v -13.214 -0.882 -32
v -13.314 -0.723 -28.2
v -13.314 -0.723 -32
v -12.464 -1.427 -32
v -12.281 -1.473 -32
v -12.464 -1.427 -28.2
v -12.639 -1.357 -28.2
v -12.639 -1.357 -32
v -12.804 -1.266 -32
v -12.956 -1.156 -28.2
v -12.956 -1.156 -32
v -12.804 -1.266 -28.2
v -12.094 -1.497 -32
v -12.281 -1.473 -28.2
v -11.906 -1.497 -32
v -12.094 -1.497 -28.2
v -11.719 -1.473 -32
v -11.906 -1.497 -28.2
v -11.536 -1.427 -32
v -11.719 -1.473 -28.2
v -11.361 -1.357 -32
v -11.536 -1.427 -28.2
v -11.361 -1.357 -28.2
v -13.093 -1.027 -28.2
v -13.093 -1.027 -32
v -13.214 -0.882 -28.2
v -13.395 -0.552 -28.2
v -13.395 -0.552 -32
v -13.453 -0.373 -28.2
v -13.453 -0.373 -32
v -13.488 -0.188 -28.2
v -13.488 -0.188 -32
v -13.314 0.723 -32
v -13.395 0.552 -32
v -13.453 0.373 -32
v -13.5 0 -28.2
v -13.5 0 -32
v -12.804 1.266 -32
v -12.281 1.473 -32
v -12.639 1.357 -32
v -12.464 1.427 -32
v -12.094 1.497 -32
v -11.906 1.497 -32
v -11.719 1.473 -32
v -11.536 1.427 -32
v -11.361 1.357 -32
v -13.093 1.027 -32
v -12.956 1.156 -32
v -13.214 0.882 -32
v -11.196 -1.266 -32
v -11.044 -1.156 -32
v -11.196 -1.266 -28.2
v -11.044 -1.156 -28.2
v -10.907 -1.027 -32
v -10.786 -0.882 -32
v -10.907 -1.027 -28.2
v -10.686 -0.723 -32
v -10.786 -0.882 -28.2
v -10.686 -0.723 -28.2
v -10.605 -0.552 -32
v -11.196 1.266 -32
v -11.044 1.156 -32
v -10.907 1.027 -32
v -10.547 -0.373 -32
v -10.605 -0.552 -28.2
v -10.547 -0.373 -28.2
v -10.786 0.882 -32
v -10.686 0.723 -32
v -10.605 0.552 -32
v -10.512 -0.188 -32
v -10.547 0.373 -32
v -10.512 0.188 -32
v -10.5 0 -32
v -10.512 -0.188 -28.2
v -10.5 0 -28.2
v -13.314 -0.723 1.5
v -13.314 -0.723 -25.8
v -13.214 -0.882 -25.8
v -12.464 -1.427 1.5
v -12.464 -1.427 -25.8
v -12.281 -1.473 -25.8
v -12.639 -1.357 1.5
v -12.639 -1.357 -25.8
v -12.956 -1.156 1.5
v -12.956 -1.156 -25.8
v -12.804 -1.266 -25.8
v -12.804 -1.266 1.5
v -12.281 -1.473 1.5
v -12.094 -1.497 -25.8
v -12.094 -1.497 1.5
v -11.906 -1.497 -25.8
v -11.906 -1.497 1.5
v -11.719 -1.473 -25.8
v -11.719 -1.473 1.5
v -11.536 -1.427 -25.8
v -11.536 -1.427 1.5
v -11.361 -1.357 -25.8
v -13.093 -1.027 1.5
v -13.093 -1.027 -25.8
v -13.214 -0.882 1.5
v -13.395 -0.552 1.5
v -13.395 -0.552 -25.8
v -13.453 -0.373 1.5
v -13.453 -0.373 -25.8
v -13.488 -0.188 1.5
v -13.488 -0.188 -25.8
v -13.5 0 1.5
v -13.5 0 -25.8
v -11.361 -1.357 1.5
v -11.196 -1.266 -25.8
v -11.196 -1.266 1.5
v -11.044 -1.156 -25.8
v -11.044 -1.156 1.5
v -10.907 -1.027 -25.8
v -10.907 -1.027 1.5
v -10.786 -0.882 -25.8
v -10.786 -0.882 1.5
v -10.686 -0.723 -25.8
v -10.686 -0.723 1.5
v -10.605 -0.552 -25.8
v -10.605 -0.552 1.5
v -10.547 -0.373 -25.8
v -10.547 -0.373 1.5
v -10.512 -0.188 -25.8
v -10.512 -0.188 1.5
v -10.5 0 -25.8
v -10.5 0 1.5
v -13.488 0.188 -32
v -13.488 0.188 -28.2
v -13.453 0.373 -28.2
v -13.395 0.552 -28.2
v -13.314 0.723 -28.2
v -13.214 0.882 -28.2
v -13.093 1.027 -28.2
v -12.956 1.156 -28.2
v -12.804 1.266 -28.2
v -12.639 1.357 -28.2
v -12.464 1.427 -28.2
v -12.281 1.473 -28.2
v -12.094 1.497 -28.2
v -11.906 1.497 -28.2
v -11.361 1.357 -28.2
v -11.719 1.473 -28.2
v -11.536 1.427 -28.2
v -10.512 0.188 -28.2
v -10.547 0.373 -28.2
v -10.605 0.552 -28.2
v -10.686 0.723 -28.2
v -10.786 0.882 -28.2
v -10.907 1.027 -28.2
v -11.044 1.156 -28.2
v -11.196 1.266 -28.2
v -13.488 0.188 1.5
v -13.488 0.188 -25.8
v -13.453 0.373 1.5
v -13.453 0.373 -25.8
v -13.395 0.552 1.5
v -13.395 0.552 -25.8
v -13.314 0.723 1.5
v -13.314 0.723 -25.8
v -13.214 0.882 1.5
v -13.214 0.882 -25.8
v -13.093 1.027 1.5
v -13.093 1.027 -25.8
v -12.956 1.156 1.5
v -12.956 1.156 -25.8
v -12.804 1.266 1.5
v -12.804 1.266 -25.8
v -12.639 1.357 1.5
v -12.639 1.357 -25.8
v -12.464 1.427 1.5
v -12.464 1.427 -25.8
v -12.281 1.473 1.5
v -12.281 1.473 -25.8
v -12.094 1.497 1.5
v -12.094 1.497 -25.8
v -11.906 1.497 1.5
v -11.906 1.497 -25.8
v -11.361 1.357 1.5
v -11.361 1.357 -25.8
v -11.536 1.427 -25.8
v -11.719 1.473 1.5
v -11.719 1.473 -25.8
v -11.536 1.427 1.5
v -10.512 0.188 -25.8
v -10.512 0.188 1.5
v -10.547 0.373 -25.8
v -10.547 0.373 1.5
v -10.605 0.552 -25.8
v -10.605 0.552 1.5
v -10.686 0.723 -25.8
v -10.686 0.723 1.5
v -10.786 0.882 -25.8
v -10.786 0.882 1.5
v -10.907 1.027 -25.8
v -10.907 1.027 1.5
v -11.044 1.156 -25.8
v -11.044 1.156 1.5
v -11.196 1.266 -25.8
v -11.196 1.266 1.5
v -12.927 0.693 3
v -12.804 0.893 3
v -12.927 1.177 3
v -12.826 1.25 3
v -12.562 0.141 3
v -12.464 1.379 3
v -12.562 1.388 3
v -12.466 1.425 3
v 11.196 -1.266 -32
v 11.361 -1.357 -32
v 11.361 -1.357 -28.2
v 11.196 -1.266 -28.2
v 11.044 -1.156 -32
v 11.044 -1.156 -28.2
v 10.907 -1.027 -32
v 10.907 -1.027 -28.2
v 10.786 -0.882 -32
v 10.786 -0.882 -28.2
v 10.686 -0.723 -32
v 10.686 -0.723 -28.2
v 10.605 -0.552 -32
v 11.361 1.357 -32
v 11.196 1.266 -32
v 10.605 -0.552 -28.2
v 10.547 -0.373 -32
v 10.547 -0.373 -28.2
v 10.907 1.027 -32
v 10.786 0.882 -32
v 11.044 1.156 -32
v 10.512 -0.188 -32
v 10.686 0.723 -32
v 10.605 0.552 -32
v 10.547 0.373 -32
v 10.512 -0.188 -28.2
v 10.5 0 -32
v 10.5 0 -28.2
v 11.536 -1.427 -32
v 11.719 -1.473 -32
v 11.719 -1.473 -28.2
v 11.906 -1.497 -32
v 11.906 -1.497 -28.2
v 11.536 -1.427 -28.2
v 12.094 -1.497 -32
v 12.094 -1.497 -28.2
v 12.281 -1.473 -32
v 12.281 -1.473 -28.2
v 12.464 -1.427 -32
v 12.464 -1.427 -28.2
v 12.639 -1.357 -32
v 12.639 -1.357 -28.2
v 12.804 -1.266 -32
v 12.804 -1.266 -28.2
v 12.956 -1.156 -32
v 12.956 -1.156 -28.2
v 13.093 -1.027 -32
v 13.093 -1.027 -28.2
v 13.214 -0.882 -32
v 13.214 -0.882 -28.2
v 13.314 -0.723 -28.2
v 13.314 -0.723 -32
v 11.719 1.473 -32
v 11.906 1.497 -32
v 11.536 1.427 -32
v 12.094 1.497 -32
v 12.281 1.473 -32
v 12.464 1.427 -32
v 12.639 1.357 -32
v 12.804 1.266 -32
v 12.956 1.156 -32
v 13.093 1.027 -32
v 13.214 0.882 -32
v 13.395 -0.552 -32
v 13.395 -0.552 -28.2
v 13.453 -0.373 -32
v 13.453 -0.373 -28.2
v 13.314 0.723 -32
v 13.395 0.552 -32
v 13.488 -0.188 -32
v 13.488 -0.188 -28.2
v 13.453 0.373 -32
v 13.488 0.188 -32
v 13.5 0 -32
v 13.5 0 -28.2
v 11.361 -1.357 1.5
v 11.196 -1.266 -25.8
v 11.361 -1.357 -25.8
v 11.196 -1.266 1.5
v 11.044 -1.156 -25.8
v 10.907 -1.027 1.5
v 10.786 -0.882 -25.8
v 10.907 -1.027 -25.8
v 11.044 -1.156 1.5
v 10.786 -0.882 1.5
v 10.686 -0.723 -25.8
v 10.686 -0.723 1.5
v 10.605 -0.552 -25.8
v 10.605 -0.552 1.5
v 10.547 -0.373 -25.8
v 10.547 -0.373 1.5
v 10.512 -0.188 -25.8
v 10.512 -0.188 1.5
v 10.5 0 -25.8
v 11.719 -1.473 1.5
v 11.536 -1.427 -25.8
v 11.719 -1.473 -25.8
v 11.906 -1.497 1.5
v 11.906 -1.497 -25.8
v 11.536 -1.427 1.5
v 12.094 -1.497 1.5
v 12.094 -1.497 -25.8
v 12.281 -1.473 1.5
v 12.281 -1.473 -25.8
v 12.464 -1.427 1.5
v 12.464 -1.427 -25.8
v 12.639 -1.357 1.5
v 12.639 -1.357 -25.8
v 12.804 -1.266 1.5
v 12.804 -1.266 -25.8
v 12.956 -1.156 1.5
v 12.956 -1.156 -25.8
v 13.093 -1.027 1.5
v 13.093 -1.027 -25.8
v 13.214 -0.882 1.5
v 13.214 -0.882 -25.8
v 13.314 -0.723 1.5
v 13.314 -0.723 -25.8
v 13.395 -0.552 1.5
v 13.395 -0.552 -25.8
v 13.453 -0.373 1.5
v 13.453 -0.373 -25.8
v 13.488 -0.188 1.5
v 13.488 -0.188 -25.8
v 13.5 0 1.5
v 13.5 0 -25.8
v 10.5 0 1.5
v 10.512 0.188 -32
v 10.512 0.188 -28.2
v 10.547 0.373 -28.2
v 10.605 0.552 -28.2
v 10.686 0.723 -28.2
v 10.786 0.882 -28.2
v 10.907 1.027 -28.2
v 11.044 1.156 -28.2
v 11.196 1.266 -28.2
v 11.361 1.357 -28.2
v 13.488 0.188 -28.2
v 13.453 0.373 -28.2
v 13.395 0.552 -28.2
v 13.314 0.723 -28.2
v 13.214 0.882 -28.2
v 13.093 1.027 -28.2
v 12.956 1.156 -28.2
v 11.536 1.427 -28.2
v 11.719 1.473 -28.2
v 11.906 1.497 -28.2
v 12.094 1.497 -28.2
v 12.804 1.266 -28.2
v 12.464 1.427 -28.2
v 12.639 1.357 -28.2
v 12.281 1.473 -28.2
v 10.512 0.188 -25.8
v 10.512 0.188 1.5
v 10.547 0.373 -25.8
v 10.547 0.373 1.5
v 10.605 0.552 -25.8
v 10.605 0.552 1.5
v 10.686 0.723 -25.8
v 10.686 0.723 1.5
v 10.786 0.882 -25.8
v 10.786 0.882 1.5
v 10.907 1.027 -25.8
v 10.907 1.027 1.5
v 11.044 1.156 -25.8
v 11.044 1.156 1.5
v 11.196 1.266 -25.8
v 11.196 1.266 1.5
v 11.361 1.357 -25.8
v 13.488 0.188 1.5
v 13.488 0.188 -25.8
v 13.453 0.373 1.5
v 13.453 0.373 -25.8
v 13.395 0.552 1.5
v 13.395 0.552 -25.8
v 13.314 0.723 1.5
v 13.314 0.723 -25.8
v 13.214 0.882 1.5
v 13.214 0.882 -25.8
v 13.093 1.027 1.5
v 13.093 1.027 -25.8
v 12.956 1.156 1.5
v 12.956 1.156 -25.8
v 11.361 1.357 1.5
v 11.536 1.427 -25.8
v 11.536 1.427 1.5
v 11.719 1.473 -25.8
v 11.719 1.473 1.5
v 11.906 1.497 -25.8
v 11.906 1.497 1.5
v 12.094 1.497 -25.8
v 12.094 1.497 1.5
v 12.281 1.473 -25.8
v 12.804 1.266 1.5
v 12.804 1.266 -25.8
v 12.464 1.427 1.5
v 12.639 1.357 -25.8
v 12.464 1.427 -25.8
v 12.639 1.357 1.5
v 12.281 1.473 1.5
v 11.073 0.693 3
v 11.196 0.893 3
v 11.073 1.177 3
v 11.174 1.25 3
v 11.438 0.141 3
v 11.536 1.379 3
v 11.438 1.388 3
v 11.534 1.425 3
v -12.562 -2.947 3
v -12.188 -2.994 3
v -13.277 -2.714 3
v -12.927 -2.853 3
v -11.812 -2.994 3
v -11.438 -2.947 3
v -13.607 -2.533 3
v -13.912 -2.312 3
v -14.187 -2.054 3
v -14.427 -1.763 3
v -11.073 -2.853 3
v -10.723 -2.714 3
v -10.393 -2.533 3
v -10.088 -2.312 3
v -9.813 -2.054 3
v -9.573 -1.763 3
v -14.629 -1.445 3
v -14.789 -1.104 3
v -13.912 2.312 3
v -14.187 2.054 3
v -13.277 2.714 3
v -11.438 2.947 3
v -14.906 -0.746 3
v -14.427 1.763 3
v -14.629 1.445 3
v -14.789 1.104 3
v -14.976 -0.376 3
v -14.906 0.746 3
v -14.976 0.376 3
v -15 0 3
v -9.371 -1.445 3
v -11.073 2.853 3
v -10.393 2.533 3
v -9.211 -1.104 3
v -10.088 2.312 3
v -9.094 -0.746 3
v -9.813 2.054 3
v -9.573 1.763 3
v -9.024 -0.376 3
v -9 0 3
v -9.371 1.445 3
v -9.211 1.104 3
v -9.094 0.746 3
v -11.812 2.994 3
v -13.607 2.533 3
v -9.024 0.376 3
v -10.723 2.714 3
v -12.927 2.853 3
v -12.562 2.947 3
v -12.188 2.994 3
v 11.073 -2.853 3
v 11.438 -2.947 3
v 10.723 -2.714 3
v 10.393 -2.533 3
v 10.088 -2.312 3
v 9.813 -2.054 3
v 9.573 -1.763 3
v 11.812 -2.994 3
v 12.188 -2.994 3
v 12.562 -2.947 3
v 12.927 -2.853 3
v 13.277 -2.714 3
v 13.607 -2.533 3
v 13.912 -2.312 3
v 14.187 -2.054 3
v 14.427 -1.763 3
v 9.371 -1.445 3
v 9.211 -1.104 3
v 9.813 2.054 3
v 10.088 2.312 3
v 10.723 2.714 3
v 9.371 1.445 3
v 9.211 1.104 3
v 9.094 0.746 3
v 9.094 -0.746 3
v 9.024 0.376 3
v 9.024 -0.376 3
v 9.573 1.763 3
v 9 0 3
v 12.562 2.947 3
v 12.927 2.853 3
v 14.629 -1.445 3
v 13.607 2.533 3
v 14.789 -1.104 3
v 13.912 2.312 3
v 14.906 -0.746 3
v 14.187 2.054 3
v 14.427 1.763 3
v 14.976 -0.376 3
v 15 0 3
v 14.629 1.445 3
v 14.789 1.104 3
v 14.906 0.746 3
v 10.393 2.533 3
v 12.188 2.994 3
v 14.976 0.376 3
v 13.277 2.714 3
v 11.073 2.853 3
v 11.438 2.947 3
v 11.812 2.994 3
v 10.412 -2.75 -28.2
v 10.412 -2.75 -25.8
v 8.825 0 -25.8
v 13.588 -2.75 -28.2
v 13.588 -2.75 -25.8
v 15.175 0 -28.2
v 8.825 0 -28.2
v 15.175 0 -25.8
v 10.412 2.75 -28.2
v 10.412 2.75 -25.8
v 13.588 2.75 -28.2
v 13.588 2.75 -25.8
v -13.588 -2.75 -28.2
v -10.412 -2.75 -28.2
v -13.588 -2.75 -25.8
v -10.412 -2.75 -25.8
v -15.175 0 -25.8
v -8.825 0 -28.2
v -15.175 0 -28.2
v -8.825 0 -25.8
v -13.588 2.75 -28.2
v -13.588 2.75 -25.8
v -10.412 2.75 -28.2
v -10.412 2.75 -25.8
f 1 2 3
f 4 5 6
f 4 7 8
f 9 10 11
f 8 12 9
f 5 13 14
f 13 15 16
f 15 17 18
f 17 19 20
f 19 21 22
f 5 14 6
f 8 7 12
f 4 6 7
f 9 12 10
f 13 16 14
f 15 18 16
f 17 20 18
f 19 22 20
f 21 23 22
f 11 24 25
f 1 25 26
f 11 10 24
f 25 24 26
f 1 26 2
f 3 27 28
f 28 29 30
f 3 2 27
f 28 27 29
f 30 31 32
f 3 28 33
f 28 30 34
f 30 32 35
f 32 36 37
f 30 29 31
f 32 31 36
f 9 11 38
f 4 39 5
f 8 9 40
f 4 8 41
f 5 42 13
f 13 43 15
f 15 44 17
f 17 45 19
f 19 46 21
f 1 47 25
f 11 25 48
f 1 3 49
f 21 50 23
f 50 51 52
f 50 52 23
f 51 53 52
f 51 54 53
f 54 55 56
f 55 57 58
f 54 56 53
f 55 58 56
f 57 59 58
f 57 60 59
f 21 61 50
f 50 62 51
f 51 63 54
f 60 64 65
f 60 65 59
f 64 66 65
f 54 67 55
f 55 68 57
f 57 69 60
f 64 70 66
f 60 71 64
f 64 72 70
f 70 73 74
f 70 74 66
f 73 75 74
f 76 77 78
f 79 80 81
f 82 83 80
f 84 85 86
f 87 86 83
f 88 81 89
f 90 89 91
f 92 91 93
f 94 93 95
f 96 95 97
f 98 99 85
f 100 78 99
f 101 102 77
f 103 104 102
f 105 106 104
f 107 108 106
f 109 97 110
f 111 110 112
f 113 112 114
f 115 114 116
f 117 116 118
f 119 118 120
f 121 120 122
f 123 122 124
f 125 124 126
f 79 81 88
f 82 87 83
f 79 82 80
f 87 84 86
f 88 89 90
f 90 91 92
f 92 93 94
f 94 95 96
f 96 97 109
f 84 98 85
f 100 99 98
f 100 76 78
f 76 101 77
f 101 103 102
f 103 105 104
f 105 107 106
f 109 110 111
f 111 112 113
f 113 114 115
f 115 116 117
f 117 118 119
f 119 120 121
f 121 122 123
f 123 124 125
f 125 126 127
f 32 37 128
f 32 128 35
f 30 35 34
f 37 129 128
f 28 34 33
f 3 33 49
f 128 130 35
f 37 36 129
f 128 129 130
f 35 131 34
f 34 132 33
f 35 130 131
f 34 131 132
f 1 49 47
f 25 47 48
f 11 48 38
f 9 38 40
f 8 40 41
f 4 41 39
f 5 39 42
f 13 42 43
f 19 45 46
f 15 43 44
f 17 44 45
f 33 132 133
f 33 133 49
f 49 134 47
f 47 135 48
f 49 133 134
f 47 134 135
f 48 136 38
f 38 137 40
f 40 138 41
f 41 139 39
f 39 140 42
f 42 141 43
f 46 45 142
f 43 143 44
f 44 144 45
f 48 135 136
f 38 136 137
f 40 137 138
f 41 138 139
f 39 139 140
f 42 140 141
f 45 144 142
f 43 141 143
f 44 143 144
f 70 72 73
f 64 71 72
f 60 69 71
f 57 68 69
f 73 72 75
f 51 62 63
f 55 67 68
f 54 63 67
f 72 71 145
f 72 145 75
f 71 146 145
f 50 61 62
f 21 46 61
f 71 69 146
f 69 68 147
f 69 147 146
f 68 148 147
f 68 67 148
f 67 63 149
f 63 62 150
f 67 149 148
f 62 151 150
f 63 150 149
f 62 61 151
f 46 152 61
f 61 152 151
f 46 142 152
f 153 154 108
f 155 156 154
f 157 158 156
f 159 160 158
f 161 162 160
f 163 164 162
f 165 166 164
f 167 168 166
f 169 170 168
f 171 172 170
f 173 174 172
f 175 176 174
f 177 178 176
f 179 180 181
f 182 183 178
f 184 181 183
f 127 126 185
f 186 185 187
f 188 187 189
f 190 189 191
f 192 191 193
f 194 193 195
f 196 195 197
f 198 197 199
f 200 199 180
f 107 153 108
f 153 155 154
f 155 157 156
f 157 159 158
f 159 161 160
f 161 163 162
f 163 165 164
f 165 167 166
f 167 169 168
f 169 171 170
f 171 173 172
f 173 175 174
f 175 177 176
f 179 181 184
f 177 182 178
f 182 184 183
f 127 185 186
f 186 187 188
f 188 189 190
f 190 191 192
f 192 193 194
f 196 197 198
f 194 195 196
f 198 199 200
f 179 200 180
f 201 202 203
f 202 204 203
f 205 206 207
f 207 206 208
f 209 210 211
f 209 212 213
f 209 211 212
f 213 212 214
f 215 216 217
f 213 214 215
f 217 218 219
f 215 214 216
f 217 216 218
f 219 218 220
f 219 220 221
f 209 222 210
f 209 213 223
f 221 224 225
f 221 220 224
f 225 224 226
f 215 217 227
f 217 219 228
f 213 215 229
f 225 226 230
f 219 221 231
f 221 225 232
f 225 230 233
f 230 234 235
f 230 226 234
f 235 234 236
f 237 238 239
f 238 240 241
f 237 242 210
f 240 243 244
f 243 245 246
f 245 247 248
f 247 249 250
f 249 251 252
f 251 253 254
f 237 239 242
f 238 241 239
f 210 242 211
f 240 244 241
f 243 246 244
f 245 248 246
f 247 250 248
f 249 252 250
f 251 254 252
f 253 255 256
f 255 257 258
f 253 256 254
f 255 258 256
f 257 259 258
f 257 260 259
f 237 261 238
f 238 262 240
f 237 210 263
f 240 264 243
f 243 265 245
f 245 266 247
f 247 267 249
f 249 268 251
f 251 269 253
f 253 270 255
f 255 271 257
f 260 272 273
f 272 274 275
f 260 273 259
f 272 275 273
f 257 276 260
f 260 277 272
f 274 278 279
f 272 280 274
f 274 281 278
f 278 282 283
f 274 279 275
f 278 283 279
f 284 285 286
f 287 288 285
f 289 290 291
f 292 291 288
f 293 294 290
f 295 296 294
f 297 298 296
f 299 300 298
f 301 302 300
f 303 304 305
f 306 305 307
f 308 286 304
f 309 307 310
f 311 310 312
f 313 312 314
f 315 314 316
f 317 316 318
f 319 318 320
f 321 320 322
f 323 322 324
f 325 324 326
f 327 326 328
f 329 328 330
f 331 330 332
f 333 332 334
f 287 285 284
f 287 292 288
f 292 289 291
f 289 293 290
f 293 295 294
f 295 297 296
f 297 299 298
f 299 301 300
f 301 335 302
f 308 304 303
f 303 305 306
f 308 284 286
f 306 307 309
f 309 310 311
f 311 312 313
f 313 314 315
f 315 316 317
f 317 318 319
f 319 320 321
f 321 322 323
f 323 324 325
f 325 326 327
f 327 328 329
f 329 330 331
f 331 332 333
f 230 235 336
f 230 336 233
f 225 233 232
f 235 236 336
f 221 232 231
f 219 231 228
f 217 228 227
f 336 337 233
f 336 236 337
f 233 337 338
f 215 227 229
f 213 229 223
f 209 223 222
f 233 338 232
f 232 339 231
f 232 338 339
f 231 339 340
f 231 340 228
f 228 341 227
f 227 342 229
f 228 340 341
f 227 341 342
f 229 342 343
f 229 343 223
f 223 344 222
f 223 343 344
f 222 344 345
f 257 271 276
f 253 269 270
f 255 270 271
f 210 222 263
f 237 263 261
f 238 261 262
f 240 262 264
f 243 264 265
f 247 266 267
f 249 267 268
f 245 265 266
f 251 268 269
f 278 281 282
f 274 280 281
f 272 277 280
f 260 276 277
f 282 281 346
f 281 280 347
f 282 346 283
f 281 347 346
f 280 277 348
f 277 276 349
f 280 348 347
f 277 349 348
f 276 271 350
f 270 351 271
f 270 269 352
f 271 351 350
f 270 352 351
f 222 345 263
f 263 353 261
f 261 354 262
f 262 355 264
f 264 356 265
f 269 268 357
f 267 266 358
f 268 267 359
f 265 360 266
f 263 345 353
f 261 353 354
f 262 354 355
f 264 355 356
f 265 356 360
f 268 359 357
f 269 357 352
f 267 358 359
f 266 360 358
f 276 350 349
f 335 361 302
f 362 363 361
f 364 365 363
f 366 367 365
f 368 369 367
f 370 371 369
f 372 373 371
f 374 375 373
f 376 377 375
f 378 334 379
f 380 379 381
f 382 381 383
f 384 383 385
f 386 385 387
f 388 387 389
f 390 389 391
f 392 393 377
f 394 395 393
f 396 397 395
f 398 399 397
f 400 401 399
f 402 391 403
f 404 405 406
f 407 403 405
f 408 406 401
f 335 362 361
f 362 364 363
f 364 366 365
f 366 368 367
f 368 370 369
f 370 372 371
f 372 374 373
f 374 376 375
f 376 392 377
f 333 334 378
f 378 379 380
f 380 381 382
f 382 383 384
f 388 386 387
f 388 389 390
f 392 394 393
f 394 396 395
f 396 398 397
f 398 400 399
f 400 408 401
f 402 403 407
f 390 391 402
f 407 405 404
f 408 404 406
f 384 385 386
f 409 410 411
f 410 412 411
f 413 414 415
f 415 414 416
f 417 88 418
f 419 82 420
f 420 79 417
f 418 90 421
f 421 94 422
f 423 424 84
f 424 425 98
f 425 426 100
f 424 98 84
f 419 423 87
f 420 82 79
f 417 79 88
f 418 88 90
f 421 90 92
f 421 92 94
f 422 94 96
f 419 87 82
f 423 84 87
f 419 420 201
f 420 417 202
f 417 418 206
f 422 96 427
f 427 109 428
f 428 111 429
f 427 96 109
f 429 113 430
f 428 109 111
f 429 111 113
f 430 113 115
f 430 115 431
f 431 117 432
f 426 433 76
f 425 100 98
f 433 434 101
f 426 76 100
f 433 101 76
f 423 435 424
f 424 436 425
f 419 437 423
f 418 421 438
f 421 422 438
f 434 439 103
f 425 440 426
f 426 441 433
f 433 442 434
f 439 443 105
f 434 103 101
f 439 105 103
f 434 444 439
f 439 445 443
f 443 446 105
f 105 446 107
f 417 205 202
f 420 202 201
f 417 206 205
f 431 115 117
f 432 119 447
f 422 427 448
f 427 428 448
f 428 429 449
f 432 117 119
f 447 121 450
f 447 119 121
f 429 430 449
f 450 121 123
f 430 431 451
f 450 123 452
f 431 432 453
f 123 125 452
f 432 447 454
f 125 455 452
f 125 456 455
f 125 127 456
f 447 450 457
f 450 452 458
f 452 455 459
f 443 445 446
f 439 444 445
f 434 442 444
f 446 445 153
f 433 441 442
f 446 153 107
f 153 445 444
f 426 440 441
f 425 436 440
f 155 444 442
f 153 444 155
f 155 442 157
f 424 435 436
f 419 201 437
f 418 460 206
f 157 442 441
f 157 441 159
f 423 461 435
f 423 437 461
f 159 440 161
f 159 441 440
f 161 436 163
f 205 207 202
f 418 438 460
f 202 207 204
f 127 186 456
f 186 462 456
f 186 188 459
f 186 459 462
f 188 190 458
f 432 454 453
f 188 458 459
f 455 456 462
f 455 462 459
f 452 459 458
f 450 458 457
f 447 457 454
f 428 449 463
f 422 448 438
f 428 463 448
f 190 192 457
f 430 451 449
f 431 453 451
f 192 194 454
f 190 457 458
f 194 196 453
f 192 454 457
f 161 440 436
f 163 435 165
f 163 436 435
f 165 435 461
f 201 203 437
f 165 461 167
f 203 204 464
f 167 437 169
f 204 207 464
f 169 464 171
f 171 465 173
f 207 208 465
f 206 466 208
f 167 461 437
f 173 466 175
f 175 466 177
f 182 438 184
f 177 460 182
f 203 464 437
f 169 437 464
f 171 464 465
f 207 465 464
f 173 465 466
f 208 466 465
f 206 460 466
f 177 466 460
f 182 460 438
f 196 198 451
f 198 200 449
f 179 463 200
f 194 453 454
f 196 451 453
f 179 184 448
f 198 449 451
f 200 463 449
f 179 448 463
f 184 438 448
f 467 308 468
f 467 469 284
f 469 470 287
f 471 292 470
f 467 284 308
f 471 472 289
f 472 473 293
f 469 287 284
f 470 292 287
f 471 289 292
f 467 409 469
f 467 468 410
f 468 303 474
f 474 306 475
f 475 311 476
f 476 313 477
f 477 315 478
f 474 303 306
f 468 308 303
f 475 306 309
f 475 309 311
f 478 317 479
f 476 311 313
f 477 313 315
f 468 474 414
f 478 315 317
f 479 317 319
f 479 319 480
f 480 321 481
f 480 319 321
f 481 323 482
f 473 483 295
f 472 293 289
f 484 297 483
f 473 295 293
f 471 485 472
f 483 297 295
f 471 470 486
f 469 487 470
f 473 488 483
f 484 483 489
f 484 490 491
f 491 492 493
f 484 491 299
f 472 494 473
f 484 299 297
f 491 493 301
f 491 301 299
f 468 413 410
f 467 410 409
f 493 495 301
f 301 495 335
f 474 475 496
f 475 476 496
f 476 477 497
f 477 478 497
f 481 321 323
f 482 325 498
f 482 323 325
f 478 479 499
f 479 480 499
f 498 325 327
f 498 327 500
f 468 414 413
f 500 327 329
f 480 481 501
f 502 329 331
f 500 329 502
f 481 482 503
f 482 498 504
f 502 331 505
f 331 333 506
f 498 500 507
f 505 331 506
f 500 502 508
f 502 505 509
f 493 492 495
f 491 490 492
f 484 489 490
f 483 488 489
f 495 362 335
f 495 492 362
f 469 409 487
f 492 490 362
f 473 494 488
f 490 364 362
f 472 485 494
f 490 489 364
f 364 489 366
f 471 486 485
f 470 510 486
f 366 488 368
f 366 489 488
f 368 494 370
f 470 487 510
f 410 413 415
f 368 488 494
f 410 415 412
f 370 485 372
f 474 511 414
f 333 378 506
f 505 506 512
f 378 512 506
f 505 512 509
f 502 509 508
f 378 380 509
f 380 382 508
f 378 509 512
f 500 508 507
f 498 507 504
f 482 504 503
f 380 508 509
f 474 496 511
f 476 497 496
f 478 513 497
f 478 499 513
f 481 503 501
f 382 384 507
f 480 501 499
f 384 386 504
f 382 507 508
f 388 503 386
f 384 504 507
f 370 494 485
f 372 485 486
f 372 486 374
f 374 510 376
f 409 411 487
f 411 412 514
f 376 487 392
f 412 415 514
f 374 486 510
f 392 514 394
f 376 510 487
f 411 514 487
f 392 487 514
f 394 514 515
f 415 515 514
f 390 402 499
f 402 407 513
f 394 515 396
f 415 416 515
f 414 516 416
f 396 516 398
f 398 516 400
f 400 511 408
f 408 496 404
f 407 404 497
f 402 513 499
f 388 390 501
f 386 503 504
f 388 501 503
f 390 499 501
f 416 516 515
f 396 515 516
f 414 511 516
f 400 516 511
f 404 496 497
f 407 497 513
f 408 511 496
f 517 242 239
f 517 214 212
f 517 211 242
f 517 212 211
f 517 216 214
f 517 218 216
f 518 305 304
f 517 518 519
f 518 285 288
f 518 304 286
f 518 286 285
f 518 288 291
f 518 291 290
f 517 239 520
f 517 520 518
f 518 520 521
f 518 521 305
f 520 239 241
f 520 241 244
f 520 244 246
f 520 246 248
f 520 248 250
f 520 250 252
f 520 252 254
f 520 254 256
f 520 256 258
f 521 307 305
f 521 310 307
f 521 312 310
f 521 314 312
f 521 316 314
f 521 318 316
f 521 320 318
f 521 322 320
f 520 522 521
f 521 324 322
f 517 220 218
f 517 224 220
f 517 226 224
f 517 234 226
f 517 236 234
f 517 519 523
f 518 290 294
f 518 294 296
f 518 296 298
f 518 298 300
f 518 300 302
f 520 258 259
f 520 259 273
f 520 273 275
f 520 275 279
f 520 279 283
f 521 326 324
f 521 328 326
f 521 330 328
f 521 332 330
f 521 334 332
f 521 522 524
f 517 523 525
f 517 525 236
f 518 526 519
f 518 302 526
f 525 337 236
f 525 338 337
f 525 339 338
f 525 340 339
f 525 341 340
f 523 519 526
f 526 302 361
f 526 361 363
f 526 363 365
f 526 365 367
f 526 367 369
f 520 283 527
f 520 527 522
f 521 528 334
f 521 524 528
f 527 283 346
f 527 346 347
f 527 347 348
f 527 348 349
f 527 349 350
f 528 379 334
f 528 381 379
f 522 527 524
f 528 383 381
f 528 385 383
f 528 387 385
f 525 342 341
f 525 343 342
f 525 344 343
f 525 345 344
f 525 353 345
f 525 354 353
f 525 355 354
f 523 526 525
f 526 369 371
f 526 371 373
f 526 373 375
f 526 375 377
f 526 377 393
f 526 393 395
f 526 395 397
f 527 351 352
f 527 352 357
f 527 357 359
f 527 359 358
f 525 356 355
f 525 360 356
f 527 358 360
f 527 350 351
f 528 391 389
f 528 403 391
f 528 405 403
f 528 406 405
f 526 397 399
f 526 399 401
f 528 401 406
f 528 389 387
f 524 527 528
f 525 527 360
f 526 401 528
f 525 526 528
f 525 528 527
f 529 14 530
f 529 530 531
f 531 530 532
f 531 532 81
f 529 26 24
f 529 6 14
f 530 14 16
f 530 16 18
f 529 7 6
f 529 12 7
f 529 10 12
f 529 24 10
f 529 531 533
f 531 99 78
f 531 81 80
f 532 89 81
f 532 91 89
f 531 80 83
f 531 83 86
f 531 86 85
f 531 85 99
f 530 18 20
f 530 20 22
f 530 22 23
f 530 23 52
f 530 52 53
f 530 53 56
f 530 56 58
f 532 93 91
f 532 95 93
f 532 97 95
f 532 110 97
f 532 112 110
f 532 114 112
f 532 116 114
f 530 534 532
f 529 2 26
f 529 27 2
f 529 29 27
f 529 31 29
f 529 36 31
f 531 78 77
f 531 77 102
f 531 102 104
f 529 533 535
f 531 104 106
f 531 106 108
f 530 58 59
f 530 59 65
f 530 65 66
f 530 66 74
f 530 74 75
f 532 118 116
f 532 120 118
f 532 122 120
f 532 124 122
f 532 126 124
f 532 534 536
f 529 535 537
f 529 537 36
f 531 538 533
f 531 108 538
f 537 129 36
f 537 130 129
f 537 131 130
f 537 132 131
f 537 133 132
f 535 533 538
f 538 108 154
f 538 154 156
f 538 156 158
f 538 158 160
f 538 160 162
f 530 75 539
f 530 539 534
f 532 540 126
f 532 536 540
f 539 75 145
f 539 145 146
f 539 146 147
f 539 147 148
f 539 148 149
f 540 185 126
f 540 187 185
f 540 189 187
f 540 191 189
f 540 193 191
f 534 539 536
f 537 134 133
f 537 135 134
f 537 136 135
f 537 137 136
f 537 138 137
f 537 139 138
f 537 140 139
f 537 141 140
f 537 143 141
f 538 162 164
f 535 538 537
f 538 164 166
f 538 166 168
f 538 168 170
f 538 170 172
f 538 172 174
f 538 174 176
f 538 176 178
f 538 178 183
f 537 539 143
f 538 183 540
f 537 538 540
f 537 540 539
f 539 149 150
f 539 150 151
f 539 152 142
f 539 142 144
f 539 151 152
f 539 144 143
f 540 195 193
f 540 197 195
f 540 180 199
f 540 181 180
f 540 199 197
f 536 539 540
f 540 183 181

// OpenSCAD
$fn = 50;

difference() {
	union() {
		translate(v = [-12, 0, 3]) {
			rotate(a = [0, 0, 0]) {
				difference() {
					union() {
						translate(v = [0, 0, -35.0]) {
							cylinder(h = 35, r = 1.5);
						}
						translate(v = [0, 0, -1.5]) {
							cylinder(h = 1.5, r1 = 1.5, r2 = 3);
						}
					}
					union();
				}
			}
		}
		translate(v = [-12, 0, -28.2]) {
			rotate(a = [0, 0, 0]) {
				difference() {
					union() {
						linear_extrude(height = 2.4) {
							polygon(points = [[3.1754264805429417, 0.0], [1.5877132402714713, 2.75], [-1.5877132402714702, 2.7500000000000004], [-3.1754264805429417, 3.888775875324659e-16], [-1.5877132402714722, -2.7499999999999996], [1.5877132402714687, -2.7500000000000013]]);
						}
					}
					union();
				}
			}
		}
		translate(v = [12, 0, 3]) {
			rotate(a = [0, 0, 0]) {
				difference() {
					union() {
						translate(v = [0, 0, -35.0]) {
							cylinder(h = 35, r = 1.5);
						}
						translate(v = [0, 0, -1.5]) {
							cylinder(h = 1.5, r1 = 1.5, r2 = 3);
						}
					}
					union();
				}
			}
		}
		translate(v = [12, 0, -28.2]) {
			rotate(a = [0, 0, 0]) {
				difference() {
					union() {
						linear_extrude(height = 2.4) {
							polygon(points = [[3.1754264805429417, 0.0], [1.5877132402714713, 2.75], [-1.5877132402714702, 2.7500000000000004], [-3.1754264805429417, 3.888775875324659e-16], [-1.5877132402714722, -2.7499999999999996], [1.5877132402714687, -2.7500000000000013]]);
						}
					}
					union();
				}
			}
		}
	}
	union();
}
